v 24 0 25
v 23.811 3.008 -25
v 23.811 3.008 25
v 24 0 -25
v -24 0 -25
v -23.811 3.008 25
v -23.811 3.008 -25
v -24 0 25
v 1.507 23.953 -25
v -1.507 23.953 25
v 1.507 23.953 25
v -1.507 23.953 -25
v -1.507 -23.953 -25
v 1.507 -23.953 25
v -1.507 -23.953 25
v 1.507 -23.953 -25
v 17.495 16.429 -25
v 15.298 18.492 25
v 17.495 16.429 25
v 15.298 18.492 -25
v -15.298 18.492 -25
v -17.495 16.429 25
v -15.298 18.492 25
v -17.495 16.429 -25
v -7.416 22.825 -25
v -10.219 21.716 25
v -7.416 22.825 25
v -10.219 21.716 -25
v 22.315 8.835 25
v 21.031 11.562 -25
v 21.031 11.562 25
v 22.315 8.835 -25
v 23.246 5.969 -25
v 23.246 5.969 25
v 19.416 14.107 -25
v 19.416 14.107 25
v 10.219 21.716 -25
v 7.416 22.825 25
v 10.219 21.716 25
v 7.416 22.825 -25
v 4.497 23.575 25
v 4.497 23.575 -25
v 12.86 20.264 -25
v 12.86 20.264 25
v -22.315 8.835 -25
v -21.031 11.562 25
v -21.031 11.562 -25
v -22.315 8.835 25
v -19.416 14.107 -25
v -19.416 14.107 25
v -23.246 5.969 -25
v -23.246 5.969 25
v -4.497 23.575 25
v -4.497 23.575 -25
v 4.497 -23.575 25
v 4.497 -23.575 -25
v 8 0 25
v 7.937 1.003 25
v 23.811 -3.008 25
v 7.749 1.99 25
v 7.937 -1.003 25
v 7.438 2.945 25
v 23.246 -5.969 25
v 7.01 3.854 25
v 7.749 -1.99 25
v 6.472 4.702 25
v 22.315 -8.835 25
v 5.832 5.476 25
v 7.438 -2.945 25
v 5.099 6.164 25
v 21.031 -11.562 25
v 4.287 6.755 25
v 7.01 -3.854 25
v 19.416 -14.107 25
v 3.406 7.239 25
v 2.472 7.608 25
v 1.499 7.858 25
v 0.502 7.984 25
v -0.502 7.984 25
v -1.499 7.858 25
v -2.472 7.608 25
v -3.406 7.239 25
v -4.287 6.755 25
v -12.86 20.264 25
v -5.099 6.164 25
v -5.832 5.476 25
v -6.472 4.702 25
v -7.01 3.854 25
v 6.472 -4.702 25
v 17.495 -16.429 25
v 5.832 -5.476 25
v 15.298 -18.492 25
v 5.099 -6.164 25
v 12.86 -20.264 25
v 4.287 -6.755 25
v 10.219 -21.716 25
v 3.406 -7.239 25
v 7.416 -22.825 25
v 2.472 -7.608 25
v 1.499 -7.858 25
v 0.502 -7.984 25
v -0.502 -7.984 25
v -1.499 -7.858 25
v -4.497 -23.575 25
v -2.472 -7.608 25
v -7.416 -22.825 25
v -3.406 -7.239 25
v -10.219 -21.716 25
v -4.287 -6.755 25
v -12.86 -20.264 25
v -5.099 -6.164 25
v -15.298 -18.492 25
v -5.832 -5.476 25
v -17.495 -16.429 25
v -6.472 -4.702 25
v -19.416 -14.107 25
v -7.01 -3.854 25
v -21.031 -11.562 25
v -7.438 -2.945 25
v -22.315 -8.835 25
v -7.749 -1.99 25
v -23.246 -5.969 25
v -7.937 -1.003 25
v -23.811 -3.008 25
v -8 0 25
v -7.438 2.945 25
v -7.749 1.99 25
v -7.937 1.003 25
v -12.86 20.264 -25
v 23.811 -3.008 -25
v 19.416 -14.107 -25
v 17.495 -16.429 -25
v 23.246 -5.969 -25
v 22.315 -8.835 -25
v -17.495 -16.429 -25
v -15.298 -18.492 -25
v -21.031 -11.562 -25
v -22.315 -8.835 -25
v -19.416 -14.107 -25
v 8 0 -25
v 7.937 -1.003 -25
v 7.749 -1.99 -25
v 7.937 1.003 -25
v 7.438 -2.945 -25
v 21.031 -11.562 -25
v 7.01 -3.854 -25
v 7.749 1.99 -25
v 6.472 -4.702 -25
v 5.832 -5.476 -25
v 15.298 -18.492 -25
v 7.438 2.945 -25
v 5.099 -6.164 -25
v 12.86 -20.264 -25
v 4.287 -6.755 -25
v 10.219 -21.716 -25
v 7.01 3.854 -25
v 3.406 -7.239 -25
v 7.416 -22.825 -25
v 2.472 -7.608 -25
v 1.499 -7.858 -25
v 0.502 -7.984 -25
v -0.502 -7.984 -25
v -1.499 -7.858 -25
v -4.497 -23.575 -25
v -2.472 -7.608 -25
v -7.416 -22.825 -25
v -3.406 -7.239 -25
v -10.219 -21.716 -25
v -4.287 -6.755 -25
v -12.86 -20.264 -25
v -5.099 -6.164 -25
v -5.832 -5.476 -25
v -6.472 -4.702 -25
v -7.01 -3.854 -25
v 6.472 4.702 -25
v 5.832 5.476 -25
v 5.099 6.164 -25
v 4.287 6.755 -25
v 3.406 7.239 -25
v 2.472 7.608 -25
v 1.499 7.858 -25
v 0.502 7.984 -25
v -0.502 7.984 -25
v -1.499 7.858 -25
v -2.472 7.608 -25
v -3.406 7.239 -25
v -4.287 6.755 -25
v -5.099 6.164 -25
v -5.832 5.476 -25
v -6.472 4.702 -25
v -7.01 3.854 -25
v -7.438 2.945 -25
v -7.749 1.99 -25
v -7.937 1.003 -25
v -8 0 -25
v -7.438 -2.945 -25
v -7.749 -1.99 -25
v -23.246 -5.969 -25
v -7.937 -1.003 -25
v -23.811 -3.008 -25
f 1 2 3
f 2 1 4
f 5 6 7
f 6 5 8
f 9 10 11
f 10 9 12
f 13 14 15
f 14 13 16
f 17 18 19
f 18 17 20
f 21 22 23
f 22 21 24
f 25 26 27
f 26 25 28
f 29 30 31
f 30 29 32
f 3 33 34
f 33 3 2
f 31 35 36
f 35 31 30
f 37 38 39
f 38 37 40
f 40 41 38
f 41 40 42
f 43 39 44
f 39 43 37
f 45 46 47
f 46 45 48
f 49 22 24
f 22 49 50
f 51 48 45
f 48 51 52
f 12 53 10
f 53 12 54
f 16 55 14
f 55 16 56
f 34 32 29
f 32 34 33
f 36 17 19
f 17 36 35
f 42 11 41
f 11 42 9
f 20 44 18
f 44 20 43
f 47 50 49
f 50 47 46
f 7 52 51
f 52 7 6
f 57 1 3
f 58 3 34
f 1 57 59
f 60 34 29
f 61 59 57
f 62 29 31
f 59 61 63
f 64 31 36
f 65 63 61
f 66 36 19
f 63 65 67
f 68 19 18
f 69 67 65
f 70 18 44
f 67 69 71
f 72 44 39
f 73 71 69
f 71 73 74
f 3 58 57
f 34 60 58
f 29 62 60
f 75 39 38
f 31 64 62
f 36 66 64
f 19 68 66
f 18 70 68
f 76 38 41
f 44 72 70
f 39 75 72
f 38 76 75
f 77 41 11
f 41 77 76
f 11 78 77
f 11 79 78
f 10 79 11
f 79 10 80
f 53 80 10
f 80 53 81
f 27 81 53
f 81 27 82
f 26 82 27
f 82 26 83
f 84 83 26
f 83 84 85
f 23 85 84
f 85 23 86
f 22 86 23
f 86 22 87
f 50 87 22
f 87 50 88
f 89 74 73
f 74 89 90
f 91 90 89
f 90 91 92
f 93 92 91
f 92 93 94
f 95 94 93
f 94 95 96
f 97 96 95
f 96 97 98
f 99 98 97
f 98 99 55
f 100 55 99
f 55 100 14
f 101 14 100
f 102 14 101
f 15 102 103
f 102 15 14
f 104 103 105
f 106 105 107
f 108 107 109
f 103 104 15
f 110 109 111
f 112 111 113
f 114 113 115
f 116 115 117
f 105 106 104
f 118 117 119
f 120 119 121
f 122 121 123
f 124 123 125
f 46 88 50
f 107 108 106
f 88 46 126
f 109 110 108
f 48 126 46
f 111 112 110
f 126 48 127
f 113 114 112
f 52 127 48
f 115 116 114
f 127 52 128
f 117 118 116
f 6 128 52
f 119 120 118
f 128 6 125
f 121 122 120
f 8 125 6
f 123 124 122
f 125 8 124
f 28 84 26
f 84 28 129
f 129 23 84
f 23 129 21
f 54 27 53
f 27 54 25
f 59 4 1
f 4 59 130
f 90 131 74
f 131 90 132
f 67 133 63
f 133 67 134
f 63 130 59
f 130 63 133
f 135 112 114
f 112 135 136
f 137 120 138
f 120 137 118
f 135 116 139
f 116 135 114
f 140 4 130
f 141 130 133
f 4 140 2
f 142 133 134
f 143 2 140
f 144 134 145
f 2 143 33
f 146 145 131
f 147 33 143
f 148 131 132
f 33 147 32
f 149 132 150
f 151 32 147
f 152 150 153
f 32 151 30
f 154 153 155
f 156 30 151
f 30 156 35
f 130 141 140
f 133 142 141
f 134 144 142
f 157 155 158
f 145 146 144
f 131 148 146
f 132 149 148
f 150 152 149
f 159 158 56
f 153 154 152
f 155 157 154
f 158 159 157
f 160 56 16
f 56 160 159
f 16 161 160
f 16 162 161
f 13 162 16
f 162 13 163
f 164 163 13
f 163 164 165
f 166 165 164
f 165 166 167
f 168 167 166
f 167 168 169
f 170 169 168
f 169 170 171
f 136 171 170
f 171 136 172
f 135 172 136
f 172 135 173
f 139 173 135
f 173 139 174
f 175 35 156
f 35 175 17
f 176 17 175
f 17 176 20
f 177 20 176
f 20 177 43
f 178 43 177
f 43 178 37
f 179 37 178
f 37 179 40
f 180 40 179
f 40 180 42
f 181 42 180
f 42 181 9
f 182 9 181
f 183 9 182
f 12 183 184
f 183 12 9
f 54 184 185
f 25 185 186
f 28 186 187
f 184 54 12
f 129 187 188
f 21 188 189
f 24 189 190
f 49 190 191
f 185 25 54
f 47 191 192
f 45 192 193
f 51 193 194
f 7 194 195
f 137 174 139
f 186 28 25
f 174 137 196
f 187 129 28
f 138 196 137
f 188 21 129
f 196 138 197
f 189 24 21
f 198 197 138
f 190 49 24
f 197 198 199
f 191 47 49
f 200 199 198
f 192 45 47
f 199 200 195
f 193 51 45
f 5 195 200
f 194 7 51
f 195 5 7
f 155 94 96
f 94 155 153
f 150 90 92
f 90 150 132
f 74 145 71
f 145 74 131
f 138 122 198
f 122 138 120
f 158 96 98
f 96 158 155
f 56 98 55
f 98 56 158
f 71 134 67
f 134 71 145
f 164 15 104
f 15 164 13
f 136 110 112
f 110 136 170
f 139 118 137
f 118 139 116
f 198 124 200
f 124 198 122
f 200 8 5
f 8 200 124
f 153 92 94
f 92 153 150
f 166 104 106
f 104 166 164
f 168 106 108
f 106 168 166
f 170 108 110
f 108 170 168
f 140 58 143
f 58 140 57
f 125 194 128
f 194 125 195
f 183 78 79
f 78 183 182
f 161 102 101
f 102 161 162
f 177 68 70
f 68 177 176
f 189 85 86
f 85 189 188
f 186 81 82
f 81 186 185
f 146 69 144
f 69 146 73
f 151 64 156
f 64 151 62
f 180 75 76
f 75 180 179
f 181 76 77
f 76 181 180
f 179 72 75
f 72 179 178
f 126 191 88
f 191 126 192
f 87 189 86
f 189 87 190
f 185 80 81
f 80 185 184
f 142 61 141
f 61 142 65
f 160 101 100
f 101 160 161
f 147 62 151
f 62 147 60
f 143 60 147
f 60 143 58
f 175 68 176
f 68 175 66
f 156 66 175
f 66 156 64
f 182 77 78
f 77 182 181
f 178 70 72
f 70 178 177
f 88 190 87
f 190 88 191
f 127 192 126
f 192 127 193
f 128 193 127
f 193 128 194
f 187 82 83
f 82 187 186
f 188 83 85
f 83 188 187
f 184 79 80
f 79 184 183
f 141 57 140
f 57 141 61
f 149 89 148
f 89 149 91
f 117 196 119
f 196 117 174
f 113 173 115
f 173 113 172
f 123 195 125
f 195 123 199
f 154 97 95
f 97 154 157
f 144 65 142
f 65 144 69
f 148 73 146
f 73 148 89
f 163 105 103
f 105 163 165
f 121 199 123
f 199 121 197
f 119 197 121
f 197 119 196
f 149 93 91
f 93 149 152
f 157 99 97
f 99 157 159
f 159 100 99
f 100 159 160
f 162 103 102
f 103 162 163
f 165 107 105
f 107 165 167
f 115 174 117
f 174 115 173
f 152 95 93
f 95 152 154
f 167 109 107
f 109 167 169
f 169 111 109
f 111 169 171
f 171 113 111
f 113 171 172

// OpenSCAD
$fn = 50;


difference() {
	union() {
		translate(v = [0, 0, -25.0000000000]) {
			cylinder(h = 50, r = 24.0000000000);
		}
	}
	union() {
		translate(v = [0, 0, -100.0000000000]) {
			cylinder(h = 200, r = 8);
		}
	}
}
